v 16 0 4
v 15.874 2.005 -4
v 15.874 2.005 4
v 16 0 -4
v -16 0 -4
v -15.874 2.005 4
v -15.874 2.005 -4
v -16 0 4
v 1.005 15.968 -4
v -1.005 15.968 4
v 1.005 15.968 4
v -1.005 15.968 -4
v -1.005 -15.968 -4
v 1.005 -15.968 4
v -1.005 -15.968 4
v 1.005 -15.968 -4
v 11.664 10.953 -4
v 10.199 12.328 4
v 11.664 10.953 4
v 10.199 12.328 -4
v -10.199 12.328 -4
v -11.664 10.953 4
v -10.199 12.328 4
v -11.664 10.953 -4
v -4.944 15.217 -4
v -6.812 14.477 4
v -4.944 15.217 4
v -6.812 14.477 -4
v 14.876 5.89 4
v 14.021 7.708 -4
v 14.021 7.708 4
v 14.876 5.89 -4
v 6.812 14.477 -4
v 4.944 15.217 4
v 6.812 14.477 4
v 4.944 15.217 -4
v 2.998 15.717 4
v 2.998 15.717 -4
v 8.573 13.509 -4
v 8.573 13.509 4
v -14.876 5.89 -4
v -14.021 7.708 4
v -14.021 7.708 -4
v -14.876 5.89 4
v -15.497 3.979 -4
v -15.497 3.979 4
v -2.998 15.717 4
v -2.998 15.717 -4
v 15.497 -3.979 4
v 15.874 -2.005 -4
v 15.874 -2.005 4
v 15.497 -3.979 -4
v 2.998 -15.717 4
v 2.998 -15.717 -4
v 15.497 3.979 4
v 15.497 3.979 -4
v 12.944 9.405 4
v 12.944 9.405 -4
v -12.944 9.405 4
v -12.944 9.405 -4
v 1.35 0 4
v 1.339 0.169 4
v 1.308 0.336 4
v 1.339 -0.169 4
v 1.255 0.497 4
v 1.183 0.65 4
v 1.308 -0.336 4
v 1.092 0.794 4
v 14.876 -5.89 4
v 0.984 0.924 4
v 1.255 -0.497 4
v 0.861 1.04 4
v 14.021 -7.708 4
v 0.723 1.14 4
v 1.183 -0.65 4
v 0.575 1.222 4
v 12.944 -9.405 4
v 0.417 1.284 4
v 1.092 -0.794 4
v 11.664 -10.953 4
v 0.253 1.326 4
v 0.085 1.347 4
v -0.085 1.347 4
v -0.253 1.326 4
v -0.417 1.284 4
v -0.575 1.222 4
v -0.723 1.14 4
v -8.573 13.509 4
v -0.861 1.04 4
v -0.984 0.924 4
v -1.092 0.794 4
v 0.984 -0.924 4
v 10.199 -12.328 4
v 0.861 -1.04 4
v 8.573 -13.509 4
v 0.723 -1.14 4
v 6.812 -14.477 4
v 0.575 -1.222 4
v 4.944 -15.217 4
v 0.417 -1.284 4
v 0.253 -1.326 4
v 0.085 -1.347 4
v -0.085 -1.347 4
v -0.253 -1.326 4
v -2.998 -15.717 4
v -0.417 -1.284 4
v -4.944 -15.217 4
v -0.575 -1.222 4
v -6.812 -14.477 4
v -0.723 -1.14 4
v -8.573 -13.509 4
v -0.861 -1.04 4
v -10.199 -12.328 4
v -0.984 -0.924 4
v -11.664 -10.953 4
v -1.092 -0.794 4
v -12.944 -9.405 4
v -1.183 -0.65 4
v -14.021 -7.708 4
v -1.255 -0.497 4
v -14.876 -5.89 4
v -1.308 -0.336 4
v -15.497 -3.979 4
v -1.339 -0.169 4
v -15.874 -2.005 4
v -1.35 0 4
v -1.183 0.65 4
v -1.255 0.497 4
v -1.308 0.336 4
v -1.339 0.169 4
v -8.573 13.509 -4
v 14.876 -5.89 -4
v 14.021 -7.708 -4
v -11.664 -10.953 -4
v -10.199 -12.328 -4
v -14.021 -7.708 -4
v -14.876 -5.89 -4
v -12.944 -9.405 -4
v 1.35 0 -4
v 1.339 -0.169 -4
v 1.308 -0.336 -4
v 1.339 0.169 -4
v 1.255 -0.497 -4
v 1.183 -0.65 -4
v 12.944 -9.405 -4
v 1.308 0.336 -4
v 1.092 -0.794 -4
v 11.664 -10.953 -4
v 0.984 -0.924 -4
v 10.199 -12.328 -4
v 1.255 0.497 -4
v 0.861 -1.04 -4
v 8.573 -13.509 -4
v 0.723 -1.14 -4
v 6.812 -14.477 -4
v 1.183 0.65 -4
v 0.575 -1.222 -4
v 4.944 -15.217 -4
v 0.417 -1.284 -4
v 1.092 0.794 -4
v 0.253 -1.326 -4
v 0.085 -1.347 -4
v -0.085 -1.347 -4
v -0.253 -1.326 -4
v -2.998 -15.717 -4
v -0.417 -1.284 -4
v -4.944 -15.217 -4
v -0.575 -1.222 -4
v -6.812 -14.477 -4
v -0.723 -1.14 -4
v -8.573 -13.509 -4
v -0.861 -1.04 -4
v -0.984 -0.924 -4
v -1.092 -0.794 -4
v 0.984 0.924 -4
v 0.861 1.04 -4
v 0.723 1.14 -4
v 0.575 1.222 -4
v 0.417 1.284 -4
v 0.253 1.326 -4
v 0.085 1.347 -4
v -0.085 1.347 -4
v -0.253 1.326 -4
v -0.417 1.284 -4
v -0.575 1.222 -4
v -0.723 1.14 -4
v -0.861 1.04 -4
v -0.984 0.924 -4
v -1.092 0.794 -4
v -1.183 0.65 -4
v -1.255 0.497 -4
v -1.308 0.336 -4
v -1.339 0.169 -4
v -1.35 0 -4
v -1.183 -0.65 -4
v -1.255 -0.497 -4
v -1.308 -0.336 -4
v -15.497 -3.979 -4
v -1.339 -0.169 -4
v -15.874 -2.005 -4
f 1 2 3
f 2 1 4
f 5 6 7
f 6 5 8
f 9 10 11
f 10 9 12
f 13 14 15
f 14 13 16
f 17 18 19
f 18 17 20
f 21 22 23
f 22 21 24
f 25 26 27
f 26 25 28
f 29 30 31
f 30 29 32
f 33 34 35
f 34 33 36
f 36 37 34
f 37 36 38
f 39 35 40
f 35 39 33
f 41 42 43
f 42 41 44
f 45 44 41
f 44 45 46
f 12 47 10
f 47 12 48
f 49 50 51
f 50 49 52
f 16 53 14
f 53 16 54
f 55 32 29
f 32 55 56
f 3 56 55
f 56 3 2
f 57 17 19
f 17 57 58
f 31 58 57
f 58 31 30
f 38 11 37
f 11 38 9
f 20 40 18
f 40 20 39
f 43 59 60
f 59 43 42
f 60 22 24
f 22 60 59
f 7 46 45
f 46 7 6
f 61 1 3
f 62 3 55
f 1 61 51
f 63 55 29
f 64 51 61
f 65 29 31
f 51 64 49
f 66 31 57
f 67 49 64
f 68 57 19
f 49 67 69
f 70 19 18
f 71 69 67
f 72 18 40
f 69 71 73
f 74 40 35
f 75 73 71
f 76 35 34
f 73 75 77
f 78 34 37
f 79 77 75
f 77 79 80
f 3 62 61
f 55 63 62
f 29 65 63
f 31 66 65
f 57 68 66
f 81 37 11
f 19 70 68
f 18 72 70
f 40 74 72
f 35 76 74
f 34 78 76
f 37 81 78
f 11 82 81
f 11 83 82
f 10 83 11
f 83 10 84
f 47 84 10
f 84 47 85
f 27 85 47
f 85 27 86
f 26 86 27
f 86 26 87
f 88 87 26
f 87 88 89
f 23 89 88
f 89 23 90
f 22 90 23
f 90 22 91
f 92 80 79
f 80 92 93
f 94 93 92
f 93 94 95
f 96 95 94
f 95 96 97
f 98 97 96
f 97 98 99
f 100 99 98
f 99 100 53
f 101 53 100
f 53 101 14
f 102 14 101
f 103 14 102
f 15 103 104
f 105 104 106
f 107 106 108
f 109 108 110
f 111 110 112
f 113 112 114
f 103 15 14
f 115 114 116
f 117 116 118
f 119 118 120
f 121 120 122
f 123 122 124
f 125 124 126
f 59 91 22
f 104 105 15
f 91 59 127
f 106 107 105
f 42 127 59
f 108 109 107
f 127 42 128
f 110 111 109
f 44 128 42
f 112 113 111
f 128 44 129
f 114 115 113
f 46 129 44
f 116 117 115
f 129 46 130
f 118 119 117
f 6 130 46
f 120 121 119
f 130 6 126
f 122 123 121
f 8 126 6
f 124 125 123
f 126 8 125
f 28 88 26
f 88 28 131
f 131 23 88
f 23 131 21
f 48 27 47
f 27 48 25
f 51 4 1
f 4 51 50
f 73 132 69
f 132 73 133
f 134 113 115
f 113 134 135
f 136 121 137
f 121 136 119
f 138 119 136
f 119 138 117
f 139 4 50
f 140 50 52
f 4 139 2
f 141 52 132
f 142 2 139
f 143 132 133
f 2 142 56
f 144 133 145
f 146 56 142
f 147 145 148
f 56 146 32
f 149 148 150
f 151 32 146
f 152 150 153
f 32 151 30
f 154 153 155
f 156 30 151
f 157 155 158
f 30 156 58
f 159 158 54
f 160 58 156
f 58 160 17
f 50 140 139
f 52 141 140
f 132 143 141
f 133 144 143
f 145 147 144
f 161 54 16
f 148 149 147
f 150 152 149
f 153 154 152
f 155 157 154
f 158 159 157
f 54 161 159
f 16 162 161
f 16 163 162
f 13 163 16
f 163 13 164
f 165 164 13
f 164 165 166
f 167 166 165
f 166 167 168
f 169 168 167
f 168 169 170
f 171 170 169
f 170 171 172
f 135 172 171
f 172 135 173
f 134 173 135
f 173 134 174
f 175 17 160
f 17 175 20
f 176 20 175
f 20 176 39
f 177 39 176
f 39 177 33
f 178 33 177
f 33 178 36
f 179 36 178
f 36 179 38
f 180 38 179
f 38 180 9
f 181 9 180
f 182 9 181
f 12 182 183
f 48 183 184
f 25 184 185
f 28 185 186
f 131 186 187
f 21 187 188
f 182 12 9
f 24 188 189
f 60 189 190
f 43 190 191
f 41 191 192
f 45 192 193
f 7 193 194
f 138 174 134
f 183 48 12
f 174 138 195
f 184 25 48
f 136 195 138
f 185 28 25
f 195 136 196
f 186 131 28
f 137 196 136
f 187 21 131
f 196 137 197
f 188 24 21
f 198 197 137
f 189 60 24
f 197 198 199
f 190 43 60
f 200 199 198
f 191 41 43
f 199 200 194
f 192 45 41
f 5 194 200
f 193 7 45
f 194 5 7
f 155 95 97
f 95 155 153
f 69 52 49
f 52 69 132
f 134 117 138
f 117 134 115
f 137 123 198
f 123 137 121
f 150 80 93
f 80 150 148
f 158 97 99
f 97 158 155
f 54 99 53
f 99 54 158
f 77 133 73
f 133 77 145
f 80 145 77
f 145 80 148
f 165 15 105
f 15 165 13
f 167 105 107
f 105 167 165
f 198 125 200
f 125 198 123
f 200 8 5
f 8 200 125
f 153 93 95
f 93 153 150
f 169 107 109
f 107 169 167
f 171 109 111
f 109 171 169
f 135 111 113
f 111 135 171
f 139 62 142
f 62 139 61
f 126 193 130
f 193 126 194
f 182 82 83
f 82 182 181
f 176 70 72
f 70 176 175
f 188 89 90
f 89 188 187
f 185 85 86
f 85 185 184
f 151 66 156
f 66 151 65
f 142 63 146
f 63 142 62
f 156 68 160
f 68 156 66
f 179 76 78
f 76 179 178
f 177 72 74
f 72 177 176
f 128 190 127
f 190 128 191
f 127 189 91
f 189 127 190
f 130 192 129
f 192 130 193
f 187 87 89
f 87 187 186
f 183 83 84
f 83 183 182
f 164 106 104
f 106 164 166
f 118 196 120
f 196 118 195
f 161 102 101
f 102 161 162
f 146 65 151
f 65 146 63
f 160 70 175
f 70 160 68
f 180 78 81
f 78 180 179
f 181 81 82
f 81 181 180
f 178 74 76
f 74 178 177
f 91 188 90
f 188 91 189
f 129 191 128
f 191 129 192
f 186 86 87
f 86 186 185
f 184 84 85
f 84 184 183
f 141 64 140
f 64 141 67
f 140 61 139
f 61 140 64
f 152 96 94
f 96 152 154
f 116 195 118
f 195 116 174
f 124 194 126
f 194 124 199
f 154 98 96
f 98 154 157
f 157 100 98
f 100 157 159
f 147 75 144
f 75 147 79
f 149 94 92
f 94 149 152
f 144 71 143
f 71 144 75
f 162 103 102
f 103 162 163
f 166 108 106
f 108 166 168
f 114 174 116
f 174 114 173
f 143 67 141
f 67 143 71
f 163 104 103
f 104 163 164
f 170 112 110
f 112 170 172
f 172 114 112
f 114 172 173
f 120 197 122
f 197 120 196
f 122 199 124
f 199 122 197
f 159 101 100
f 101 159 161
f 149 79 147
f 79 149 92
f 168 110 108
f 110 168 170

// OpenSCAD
$fn = 50;


difference() {
	union() {
		translate(v = [0, 0, -4.0000000000]) {
			cylinder(h = 8, r = 16.0000000000);
		}
	}
	union() {
		translate(v = [0, 0, -100.0000000000]) {
			cylinder(h = 200, r = 1.3500000000);
		}
	}
}
